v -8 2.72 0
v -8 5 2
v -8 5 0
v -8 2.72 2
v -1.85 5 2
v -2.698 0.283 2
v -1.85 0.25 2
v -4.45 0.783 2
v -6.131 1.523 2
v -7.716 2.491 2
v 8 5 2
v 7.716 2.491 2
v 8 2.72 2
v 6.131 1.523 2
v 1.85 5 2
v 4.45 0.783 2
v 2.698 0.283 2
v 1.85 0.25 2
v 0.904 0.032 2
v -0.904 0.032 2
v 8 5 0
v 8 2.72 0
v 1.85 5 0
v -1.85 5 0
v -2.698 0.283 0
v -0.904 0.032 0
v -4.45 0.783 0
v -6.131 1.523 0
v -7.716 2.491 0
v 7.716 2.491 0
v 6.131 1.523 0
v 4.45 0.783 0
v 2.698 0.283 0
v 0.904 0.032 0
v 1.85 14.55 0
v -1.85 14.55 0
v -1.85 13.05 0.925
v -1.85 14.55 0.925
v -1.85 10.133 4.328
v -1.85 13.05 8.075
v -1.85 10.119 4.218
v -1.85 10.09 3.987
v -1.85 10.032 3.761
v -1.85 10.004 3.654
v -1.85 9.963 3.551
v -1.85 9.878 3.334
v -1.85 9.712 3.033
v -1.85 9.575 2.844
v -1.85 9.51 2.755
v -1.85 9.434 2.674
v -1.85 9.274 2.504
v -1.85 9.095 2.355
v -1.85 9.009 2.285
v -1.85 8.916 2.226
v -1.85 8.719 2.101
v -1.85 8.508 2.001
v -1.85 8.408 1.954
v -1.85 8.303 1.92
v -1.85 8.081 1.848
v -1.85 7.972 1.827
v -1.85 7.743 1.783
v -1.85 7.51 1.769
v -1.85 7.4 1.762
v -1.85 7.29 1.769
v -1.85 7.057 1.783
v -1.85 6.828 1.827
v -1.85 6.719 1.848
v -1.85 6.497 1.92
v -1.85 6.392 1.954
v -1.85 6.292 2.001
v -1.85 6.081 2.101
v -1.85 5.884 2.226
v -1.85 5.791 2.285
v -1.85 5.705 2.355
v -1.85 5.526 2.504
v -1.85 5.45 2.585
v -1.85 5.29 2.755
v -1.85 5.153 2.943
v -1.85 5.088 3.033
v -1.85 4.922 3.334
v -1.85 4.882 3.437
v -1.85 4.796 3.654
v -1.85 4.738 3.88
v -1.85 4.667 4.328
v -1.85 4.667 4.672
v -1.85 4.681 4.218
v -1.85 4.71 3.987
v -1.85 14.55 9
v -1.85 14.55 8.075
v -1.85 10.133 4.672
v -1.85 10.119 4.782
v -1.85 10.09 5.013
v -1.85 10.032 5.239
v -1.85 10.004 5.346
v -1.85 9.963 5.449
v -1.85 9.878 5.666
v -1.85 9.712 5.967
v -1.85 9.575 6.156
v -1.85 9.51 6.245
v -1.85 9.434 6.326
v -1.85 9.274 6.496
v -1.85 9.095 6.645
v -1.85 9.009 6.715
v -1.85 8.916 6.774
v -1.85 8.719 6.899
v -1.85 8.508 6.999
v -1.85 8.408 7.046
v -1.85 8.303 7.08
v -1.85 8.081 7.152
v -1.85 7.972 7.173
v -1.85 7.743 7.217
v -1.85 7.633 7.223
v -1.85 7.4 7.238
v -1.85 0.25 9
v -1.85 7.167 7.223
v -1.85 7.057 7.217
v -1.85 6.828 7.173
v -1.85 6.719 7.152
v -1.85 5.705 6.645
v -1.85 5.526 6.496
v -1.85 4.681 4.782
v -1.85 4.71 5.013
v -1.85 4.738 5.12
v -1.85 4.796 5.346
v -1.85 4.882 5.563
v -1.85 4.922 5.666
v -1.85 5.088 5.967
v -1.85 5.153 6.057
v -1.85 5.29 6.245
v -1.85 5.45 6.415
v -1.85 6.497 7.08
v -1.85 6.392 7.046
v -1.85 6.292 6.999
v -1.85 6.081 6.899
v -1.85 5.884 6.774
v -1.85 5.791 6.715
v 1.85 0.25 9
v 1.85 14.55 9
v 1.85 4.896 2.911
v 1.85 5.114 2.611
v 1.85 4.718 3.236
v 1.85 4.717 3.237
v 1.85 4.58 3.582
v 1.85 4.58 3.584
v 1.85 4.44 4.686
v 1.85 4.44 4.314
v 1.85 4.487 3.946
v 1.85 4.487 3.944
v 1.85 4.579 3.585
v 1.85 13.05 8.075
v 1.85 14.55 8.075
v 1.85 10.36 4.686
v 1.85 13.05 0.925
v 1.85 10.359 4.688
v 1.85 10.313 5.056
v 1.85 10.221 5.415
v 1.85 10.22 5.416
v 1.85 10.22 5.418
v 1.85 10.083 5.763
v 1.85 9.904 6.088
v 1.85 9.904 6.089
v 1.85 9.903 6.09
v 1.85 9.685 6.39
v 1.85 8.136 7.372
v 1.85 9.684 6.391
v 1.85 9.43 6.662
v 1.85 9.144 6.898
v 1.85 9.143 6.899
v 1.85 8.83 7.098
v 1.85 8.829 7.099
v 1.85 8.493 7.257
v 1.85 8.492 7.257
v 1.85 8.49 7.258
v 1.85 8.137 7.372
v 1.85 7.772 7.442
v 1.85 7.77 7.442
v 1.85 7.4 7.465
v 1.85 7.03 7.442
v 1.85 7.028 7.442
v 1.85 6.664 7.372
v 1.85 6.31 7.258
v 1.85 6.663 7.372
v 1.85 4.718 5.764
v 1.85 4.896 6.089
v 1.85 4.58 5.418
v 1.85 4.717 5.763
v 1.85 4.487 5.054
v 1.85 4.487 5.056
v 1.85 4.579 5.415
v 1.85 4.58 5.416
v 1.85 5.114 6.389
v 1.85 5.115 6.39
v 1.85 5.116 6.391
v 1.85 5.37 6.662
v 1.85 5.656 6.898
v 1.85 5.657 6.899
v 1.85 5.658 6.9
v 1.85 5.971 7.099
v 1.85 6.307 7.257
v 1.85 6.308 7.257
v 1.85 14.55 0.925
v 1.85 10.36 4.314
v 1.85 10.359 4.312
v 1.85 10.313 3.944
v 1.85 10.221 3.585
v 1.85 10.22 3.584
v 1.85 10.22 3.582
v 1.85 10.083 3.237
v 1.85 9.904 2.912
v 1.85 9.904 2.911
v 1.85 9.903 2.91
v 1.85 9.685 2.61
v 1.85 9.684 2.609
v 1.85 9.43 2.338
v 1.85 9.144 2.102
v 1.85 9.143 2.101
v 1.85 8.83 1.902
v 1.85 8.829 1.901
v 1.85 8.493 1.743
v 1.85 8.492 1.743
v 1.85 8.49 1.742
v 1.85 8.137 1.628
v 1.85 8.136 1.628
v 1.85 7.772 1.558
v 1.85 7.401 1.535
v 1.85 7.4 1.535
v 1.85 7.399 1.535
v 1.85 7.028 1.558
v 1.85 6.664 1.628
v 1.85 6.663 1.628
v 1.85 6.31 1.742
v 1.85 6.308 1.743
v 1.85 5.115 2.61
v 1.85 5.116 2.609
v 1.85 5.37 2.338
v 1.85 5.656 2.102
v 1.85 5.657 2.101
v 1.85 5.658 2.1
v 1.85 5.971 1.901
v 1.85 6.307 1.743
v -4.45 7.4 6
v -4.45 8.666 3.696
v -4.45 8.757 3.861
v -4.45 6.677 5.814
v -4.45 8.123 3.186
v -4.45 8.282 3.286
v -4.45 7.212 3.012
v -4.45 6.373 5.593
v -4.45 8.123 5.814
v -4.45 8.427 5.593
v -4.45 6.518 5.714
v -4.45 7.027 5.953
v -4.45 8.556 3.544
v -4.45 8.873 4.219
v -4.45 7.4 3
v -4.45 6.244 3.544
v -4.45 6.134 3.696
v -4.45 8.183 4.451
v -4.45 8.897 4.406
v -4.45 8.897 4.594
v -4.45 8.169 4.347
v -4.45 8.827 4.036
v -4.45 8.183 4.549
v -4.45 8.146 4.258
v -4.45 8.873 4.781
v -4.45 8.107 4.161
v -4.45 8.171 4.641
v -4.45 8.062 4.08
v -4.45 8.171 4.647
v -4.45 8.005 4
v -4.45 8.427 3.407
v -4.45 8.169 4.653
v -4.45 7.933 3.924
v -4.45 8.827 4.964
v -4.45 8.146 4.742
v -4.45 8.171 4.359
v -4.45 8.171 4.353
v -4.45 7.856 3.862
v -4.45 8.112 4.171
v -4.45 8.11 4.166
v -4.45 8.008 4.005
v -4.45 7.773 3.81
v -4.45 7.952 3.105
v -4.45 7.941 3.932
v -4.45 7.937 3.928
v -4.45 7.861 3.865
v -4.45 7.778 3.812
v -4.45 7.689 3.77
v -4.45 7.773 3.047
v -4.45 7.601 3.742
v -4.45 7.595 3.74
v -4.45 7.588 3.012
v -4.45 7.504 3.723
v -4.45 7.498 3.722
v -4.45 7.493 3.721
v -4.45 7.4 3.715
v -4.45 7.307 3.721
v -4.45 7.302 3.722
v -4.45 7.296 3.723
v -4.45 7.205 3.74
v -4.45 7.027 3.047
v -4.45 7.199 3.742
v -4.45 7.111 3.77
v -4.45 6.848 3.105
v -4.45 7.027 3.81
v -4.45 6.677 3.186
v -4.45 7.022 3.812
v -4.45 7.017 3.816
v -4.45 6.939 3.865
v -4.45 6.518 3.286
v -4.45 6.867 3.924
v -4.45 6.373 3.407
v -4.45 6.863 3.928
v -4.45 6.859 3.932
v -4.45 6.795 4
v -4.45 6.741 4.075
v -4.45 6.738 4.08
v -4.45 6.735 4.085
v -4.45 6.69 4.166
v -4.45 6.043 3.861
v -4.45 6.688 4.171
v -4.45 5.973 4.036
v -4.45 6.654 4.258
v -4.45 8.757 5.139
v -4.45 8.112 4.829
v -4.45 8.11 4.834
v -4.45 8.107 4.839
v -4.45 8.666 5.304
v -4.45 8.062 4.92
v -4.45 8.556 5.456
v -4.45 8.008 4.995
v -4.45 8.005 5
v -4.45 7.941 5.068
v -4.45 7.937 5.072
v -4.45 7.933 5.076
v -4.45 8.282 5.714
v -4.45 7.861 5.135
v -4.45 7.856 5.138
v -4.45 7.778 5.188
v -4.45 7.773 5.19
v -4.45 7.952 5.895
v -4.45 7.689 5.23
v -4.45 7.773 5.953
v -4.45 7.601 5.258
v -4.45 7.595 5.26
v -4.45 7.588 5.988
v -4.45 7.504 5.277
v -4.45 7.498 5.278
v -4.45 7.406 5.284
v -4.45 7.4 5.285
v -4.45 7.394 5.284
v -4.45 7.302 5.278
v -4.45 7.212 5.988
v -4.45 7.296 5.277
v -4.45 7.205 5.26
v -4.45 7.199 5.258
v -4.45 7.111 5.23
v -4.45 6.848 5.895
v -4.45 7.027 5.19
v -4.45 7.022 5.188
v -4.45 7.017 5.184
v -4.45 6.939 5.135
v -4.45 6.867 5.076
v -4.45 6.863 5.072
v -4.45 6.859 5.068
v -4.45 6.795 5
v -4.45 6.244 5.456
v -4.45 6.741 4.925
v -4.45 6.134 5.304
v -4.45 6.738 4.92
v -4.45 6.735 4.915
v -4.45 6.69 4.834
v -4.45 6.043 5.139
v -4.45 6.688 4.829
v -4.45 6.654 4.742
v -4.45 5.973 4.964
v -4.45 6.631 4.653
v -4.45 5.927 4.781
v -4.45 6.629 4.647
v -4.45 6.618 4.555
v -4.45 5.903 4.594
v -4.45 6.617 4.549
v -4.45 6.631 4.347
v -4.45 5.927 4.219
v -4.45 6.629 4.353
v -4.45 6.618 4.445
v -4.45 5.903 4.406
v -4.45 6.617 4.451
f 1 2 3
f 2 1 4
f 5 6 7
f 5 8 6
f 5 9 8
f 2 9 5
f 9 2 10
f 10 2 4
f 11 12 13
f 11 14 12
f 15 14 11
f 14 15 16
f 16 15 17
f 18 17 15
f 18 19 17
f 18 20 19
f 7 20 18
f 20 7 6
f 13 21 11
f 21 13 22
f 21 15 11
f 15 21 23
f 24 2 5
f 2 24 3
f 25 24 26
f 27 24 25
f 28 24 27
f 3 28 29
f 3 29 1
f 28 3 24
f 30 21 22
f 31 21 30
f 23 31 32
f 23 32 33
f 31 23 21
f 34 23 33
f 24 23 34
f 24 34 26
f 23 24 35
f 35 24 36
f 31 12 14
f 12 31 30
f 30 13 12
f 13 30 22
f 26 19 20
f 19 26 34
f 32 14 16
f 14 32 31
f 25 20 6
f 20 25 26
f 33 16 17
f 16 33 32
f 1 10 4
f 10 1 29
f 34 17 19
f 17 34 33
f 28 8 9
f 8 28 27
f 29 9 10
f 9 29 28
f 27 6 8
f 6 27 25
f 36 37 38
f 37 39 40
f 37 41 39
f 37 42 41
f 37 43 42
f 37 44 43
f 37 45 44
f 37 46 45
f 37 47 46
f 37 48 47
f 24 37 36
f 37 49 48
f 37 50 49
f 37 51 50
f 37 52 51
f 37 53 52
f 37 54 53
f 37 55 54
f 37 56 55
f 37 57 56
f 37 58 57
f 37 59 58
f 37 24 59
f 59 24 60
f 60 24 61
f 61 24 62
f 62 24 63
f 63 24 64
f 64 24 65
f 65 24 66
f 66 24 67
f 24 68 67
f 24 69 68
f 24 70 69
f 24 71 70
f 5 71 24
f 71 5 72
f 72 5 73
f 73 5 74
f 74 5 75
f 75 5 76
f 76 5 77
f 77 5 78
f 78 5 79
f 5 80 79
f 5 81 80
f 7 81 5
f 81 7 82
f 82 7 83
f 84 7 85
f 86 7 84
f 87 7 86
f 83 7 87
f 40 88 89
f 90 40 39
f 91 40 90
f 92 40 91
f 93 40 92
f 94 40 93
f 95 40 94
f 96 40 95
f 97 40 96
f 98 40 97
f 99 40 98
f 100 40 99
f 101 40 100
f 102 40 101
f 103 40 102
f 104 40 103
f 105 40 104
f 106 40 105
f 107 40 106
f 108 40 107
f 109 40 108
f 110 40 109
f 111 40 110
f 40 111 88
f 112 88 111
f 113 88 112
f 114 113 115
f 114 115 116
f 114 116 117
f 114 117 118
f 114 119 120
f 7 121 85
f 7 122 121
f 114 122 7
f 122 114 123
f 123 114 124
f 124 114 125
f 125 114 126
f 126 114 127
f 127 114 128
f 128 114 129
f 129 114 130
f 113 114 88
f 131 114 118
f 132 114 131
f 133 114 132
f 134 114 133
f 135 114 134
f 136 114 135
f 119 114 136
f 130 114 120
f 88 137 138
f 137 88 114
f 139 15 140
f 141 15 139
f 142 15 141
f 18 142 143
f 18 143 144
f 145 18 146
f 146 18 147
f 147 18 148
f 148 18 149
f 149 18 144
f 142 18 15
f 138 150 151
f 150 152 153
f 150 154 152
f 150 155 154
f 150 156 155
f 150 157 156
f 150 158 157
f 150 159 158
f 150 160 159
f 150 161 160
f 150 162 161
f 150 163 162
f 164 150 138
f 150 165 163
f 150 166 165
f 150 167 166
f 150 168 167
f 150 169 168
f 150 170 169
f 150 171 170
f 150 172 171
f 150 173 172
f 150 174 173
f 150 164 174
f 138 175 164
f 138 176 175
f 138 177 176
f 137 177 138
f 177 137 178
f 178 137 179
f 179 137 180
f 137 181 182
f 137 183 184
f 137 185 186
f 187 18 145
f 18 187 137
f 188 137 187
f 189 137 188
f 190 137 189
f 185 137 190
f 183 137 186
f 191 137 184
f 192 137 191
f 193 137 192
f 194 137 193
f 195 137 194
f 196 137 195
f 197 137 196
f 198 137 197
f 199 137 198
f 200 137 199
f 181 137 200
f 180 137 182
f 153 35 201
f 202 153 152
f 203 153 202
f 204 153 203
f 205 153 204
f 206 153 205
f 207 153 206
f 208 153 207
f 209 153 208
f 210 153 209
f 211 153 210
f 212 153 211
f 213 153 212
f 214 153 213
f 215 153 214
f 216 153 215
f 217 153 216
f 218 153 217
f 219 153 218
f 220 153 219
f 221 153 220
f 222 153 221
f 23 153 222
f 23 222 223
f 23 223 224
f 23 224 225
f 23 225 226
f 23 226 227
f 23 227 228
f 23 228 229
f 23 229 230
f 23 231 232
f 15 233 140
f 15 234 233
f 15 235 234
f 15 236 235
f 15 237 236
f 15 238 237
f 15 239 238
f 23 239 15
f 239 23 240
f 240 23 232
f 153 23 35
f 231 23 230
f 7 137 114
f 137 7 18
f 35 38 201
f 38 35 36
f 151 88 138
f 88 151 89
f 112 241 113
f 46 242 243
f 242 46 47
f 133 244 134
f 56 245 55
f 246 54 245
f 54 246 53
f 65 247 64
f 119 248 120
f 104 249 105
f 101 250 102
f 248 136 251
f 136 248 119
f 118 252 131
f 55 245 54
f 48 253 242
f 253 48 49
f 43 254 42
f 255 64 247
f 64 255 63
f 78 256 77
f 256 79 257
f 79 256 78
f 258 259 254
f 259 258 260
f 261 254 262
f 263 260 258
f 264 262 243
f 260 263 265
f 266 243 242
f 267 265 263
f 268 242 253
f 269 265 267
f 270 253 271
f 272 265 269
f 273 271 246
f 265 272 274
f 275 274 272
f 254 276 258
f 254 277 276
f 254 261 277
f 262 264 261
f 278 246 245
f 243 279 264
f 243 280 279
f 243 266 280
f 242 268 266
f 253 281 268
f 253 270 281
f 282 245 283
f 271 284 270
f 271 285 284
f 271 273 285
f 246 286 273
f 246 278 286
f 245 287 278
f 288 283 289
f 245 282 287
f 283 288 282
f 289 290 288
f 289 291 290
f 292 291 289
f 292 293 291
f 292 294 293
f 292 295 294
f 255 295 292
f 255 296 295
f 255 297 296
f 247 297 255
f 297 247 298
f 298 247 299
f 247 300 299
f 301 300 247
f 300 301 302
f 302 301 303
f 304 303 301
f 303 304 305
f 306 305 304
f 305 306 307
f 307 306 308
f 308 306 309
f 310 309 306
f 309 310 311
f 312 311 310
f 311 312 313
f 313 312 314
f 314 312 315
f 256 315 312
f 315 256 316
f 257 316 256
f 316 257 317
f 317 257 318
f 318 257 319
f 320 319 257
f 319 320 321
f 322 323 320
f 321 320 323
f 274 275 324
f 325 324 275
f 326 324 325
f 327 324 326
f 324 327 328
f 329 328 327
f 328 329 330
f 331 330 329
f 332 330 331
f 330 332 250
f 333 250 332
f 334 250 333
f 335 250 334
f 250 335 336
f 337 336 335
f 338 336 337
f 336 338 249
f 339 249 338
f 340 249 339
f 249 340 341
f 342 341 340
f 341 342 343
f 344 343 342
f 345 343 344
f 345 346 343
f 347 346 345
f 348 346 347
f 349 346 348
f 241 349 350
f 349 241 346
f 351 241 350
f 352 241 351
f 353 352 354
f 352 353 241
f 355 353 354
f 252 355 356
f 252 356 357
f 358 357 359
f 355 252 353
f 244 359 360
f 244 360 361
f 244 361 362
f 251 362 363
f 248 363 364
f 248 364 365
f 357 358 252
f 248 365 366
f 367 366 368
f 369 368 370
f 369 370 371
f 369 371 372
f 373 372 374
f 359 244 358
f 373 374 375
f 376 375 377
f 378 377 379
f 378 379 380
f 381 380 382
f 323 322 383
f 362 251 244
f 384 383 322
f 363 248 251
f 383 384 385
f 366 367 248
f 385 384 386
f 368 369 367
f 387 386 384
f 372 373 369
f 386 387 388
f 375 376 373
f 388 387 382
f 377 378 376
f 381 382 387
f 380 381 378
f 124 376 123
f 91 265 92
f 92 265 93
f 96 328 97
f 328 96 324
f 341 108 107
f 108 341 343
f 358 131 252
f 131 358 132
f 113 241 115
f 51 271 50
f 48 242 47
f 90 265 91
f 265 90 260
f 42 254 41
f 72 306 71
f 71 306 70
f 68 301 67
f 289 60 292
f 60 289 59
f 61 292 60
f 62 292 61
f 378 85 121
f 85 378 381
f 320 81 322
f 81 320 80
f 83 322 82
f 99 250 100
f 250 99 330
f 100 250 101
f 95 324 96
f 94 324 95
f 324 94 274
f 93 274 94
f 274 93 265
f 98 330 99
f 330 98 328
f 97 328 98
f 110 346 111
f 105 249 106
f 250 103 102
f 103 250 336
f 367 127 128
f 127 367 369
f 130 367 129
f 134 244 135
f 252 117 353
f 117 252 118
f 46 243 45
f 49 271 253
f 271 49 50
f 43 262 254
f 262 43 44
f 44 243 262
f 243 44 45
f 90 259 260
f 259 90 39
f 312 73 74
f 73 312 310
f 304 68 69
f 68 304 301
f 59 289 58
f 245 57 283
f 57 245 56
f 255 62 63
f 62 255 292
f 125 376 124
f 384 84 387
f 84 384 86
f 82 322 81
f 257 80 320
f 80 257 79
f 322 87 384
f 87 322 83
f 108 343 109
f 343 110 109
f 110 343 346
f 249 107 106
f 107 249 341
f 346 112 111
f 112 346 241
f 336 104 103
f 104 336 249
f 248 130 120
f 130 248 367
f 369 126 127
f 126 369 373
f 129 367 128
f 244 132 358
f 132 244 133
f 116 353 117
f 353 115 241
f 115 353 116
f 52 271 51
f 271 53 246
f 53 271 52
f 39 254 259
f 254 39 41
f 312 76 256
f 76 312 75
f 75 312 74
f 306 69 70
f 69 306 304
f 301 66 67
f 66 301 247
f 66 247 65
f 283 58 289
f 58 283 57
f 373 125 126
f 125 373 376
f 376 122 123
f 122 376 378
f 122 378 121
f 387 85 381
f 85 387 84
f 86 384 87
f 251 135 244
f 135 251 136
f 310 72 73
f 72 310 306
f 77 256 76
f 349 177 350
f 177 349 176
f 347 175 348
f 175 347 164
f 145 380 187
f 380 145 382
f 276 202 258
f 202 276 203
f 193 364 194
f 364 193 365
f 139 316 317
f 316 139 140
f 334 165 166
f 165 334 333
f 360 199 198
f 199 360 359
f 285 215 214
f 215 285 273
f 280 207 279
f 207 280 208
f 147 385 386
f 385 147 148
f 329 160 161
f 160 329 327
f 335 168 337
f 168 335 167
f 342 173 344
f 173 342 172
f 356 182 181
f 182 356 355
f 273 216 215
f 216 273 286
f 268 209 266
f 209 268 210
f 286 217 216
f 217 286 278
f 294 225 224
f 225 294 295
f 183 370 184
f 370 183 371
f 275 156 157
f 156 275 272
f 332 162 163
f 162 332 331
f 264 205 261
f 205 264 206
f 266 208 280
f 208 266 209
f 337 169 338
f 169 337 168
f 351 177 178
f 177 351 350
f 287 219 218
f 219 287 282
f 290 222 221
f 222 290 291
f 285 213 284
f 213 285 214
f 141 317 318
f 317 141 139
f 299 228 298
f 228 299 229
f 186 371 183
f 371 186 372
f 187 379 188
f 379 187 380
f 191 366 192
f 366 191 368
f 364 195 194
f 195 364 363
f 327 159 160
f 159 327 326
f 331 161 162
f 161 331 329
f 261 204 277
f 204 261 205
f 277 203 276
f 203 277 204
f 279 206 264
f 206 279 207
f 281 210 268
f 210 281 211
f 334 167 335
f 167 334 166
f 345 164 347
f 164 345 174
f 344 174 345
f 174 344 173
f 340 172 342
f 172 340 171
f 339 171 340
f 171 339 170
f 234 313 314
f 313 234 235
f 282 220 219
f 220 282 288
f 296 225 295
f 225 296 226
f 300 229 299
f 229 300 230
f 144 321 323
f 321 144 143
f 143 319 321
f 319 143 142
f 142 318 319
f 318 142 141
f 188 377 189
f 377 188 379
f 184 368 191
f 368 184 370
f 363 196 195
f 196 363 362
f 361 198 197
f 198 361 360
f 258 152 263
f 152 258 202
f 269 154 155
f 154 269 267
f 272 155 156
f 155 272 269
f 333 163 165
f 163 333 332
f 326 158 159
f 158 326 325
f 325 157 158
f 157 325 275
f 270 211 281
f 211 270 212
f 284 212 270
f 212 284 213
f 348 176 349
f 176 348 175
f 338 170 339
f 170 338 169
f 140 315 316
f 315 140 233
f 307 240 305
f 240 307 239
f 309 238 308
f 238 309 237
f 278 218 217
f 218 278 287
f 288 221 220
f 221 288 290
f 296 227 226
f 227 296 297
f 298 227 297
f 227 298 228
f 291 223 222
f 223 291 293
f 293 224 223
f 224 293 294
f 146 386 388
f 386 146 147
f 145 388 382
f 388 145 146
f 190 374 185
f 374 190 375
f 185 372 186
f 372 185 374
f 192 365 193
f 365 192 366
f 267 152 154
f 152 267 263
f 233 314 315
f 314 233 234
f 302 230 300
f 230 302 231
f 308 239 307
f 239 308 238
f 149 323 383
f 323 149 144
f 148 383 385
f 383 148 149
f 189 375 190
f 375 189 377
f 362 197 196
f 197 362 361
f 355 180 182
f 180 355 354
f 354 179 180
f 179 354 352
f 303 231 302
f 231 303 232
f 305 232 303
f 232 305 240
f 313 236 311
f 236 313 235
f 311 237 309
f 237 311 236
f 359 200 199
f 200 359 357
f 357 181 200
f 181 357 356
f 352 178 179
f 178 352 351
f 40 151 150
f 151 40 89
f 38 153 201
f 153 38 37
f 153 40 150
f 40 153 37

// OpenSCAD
$fn=50;
ts=1.5;

tlk=[16,5,2];//передняя пластина толкателя
opor=[3.7,14.3,9];//опора - ползунок
ship=[1.5,1.5,0.3];//шип
otv=[6.3,6,1.5];// отверстие высота стойки, от переднего края опоры, диаметр

dug();
translate([0,0.25,0])op();


module dug(){
    intersection(){
        translate([0,tlk.y/2,tlk.z/2])cube(tlk,true);
        translate([0,tlk.x,-0.1])scale([0.9,1,1])cylinder(tlk.z*2,tlk.x,tlk.x);
    }
}




module op(){
    difference(){
        union(){
            translate([0,opor.y/2,opor.z/2])cube(opor,true);
            translate([opor.x/2,opor.y/2,opor.z/2])rotate([0,-90,0])cylinder(otv.x,otv.z*3,otv.z);
        }
        translate([opor.x/2+0.1,opor.y/2,opor.z/2])rotate([0,-90,0])cylinder(otv.x+0.2,otv.z*2,otv.z/2);
        translate([0,opor.y,opor.z/2])cube([opor.x*2,ts*2,opor.y/2],true);
    }
}
